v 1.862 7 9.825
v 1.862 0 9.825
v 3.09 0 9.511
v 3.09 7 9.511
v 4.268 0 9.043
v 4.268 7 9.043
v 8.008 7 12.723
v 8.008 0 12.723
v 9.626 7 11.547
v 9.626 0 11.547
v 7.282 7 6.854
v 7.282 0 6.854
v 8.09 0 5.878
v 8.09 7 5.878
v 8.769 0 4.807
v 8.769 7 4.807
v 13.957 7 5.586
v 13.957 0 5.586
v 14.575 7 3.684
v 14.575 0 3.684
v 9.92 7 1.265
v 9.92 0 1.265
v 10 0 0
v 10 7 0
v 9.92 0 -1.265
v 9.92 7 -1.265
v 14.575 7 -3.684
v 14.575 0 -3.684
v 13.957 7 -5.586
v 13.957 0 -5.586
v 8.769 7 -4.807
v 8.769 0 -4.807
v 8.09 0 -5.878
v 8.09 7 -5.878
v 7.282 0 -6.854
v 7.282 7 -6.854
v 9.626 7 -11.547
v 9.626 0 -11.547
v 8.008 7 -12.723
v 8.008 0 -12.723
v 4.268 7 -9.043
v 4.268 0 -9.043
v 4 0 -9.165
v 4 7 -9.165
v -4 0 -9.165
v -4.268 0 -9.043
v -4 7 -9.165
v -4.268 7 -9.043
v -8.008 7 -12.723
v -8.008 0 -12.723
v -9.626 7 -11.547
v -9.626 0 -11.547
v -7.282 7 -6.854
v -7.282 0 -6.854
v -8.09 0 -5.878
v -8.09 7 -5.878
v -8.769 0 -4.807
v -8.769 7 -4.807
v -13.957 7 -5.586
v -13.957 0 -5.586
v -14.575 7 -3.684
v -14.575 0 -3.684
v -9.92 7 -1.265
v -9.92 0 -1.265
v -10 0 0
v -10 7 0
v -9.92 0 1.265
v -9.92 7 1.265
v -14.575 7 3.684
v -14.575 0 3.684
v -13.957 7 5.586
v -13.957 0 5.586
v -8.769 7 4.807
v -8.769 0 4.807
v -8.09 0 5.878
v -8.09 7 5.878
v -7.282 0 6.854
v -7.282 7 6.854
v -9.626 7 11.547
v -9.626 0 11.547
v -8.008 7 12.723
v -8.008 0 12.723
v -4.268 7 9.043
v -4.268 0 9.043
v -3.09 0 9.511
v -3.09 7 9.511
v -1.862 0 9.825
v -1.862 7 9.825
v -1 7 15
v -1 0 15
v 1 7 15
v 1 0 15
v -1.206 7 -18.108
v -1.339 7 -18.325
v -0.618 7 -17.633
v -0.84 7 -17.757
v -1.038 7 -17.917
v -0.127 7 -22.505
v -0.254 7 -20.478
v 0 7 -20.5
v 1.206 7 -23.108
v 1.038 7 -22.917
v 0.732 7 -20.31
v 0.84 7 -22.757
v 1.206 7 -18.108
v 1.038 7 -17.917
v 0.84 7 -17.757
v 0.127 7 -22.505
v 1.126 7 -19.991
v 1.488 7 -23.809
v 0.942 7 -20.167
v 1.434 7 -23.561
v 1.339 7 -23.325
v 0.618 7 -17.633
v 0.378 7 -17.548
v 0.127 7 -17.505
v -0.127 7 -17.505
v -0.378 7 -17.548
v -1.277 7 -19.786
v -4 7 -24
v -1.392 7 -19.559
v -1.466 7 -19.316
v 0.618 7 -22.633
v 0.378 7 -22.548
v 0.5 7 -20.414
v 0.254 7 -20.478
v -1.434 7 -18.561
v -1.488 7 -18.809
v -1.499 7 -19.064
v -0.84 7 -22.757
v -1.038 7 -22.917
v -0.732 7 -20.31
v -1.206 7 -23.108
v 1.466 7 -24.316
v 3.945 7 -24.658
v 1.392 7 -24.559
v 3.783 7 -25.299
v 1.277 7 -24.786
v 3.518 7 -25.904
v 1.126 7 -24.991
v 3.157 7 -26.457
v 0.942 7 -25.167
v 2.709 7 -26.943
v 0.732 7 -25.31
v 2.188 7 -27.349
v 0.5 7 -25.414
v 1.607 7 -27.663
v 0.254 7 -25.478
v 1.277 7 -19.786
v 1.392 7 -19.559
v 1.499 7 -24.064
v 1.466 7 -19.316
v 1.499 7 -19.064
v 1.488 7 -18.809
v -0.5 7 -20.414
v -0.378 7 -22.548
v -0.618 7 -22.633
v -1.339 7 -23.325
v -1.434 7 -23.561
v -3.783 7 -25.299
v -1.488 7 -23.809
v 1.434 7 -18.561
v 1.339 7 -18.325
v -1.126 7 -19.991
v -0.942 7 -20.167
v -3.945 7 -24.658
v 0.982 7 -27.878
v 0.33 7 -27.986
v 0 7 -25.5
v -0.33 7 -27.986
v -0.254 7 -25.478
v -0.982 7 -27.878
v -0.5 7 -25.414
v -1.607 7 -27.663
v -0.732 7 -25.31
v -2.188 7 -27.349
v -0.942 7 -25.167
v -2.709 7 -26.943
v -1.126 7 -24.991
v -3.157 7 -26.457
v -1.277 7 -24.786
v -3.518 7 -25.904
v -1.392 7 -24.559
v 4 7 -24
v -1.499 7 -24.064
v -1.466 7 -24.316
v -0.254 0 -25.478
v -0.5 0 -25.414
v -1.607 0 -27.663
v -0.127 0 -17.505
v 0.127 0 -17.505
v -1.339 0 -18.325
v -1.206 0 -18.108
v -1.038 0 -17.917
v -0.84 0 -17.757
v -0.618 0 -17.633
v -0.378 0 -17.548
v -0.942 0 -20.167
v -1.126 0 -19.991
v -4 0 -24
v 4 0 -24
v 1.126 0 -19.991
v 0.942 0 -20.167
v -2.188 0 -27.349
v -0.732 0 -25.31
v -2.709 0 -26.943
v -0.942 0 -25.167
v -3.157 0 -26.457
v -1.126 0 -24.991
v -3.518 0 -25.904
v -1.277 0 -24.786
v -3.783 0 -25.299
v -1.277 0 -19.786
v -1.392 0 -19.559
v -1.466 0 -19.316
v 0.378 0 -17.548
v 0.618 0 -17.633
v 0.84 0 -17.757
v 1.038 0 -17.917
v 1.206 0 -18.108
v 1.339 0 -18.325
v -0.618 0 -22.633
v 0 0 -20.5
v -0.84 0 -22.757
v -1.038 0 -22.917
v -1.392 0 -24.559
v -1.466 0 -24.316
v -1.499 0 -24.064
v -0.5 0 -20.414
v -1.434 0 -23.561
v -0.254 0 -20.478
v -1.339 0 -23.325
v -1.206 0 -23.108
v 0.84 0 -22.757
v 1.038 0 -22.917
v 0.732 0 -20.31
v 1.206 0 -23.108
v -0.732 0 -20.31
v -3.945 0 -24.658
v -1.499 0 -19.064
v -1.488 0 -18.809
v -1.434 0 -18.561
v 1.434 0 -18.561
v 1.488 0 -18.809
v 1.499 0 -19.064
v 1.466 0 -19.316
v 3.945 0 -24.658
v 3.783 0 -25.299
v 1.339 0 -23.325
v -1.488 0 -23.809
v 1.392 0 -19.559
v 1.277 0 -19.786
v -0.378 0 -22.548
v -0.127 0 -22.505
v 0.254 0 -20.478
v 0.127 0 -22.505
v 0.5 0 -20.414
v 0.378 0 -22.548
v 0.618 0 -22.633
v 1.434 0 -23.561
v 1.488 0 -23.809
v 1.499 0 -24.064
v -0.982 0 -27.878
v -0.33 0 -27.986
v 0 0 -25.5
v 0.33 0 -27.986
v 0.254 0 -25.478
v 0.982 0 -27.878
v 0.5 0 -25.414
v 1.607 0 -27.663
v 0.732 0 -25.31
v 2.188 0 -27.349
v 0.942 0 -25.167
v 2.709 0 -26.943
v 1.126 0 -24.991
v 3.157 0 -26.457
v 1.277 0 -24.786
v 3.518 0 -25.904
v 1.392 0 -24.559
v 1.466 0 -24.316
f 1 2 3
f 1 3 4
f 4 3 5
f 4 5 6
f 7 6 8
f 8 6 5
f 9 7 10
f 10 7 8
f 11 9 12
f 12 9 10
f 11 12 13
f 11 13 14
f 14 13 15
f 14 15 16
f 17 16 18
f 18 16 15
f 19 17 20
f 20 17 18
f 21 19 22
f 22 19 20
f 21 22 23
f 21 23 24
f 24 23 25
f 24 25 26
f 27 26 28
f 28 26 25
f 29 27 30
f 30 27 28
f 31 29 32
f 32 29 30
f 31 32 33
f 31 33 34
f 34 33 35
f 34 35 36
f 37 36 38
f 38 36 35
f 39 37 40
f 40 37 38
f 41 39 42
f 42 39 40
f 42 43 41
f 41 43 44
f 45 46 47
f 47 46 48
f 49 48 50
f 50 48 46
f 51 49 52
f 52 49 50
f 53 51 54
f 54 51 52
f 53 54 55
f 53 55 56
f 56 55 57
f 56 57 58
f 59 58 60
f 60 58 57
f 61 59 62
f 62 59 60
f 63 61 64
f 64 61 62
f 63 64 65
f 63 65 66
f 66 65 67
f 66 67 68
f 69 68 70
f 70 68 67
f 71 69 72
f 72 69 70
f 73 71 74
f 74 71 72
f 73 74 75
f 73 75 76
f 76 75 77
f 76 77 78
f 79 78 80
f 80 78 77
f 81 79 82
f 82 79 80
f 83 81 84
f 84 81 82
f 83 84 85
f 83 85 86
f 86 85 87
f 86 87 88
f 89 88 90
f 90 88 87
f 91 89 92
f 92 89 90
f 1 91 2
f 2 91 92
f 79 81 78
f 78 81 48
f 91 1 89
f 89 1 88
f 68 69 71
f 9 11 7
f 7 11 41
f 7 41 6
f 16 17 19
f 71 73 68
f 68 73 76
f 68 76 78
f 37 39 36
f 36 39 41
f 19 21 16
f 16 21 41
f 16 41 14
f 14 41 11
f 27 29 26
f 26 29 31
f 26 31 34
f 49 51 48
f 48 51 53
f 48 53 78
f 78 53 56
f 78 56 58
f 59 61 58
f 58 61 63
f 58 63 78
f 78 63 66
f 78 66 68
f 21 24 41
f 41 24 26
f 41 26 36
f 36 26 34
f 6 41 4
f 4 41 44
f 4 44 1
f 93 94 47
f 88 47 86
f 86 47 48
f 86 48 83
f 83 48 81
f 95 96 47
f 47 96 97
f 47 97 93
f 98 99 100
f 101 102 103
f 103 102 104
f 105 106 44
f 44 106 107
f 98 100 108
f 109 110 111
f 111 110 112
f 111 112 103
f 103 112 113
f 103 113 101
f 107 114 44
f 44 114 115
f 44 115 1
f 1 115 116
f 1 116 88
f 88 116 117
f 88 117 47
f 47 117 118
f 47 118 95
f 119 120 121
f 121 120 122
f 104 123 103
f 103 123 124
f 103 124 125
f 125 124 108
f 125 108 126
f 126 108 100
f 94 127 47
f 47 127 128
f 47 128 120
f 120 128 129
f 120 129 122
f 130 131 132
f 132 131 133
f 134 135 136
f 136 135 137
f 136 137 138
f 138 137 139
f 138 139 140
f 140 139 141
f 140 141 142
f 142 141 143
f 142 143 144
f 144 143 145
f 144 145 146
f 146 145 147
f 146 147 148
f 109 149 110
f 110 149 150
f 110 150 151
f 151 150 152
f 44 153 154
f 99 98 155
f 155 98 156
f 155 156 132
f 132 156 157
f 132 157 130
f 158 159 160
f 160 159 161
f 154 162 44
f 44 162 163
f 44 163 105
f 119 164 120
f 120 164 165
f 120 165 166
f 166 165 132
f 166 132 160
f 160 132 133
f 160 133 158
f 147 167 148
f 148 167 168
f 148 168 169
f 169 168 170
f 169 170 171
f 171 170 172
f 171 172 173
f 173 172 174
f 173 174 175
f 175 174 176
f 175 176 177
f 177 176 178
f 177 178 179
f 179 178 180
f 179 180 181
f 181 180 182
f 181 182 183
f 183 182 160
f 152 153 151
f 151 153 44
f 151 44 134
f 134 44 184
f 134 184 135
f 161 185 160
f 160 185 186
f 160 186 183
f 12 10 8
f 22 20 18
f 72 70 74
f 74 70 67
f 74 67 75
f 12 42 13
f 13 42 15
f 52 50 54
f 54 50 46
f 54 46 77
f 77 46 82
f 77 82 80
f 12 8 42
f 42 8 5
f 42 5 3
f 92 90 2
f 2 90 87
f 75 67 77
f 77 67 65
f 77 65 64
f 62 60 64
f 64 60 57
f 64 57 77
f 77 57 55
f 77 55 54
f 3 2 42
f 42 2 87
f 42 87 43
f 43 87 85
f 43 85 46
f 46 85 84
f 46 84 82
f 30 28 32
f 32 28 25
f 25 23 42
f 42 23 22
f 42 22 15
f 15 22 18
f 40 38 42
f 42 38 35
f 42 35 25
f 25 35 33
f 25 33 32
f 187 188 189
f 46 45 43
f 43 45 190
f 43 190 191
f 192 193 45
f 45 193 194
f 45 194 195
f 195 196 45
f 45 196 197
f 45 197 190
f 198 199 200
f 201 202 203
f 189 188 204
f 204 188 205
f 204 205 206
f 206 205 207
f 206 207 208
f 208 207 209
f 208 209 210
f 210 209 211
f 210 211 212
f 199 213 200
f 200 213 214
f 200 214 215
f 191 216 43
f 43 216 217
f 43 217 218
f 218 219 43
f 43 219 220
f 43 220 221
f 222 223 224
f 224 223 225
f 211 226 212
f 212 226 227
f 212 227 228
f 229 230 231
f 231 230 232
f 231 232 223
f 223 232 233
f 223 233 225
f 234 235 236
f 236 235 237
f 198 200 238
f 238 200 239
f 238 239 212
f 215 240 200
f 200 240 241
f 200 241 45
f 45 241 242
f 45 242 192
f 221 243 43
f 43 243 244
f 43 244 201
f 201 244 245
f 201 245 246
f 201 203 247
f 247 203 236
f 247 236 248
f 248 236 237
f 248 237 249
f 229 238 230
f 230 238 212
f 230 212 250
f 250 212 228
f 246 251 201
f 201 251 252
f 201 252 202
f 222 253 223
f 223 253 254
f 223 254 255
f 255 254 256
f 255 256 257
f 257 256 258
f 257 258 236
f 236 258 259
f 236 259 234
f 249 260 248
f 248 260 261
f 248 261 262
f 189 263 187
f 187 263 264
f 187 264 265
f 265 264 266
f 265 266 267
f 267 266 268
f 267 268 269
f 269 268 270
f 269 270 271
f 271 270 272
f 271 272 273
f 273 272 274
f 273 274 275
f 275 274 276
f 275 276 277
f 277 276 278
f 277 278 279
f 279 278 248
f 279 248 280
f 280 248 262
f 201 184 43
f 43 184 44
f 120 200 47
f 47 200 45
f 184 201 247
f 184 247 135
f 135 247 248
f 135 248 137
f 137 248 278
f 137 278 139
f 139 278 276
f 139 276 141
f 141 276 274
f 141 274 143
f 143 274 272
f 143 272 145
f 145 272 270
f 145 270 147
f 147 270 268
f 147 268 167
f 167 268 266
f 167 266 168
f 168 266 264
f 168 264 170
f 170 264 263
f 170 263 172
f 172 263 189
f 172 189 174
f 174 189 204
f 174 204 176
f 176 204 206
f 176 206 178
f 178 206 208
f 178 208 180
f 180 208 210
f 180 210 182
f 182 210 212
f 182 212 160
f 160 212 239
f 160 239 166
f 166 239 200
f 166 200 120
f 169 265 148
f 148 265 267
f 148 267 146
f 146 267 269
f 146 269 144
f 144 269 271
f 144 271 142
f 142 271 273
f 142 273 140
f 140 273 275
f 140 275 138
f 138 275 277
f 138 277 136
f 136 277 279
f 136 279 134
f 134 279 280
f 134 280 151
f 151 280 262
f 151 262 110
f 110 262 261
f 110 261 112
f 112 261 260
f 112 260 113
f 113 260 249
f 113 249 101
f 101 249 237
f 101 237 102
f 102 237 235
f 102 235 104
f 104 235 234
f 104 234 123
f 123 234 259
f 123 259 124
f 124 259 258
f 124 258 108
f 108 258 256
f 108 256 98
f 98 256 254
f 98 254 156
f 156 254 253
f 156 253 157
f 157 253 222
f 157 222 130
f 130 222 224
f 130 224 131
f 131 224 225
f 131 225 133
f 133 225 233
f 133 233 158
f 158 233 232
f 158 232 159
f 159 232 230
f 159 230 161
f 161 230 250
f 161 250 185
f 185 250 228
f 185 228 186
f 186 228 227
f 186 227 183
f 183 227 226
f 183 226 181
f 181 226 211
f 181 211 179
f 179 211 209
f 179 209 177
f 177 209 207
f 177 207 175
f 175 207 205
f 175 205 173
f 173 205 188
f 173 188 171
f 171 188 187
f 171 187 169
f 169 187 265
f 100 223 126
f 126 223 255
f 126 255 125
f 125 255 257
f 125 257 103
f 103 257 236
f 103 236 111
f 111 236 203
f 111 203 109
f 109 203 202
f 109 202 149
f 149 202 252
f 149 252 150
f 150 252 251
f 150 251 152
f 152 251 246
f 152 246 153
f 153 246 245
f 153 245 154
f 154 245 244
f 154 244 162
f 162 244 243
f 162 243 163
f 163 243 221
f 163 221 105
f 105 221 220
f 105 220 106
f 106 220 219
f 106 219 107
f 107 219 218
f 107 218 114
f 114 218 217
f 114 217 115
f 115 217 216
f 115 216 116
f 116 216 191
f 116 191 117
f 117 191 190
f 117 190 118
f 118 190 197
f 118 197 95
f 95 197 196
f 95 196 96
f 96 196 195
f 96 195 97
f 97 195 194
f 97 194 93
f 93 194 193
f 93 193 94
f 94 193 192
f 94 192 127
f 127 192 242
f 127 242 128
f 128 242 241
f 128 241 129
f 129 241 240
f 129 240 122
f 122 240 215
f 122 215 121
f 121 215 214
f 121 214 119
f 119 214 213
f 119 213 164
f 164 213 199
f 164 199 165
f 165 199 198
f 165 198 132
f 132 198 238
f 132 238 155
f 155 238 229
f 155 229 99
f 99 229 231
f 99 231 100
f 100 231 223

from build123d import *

# Parameters (mm, degrees)
BOSS_EXTRUDE2_DEPTH = 7
SKETCH2_R           = 1.5
BOSS_EXTRUDE3_DEPTH = 7


with BuildPart() as part:
    # Sketch1 → Boss-Extrude2 (new body)
    with BuildSketch(Plane(origin=(0, 0, 0), x_dir=(1, 0, 0), z_dir=(0, 1, 0))):
        with BuildLine():
            Line((-2, 9), (-1.862495894, 9.825024633))
            ThreePointArc((-1.862495894, 9.825024633), (-3.090169944, 9.510565163), (-4.268213752, 9.043359518))
            Line((-4.268213752, 9.043359518), (-3.672033282, 8.456723454))
            Line((-3.672033282, 8.456723454), (-6.908101259, 6.105582445))
            Line((-6.908101259, 6.105582445), (-7.281795413, 6.853864279))
            ThreePointArc((-7.281795413, 6.853864279), (-8.090169944, 5.877852523), (-8.768610817, 4.807438439))
            Line((-8.768610817, 4.807438439), (-7.941474658, 4.683265982))
            Line((-7.941474658, 4.683265982), (-9.177542635, 0.879039917))
            Line((-9.177542635, 0.879039917), (-9.919696584, 1.264760725))
            ThreePointArc((-9.919696584, 1.264760725), (-10, 0), (-9.919696584, -1.264760725))
            Line((-9.919696584, -1.264760725), (-9.177542635, -0.879039917))
            Line((-9.177542635, -0.879039917), (-7.941474658, -4.683265982))
            Line((-7.941474658, -4.683265982), (-8.768610817, -4.807438439))
            ThreePointArc((-8.768610817, -4.807438439), (-8.090169944, -5.877852523), (-7.281795413, -6.853864279))
            Line((-7.281795413, -6.853864279), (-6.908101259, -6.105582445))
            Line((-6.908101259, -6.105582445), (-3.672033282, -8.456723454))
            Line((-3.672033282, -8.456723454), (-4.268213752, -9.043359518))
            ThreePointArc((-4.268213752, -9.043359518), (-3.090169944, -9.510565163), (-1.862495894, -9.825024633))
            Line((-1.862495894, -9.825024633), (-2, -9))
            Line((-2, -9), (2, -9))
            Line((2, -9), (1.862495894, -9.825024633))
            ThreePointArc((1.862495894, -9.825024633), (3.090169944, -9.510565163), (4.268213752, -9.043359518))
            Line((4.268213752, -9.043359518), (3.672033282, -8.456723454))
            Line((3.672033282, -8.456723454), (6.908101259, -6.105582445))
            Line((6.908101259, -6.105582445), (7.281795413, -6.853864279))
            ThreePointArc((7.281795413, -6.853864279), (8.090169944, -5.877852523), (8.768610817, -4.807438439))
            Line((8.768610817, -4.807438439), (7.941474658, -4.683265982))
            Line((7.941474658, -4.683265982), (9.177542635, -0.879039917))
            Line((9.177542635, -0.879039917), (9.919696584, -1.264760725))
            ThreePointArc((9.919696584, -1.264760725), (9.979903953, -0.633653756), (10, 0))
            ThreePointArc((10, 0), (9.979903953, 0.633653756), (9.919696584, 1.264760725))
            Line((9.919696584, 1.264760725), (9.177542635, 0.879039917))
            Line((9.177542635, 0.879039917), (7.941474658, 4.683265982))
            Line((7.941474658, 4.683265982), (8.768610817, 4.807438439))
            ThreePointArc((8.768610817, 4.807438439), (8.090169944, 5.877852523), (7.281795413, 6.853864279))
            Line((7.281795413, 6.853864279), (6.908101259, 6.105582445))
            Line((6.908101259, 6.105582445), (3.672033282, 8.456723454))
            Line((3.672033282, 8.456723454), (4.268213752, 9.043359518))
            ThreePointArc((4.268213752, 9.043359518), (3.090169944, 9.510565163), (1.862495894, 9.825024633))
            Line((1.862495894, 9.825024633), (2, 9))
            Line((2, 9), (-2, 9))
        make_face()
        with BuildLine():
            ThreePointArc((-8.768610817, -4.807438439), (-9.510565163, -3.090169944), (-9.919696584, -1.264760725))
            Line((-9.919696584, -1.264760725), (-14.574864739, -3.684198399))
            Line((-14.574864739, -3.684198399), (-13.95683075, -5.586311432))
            Line((-13.95683075, -5.586311432), (-8.768610817, -4.807438439))
        make_face()
        with BuildLine():
            ThreePointArc((-4.268213752, -9.043359518), (-5.877852523, -8.090169944), (-7.281795413, -6.853864279))
            Line((-7.281795413, -6.853864279), (-9.625795779, -11.547469663))
            Line((-9.625795779, -11.547469663), (-8.00776179, -12.723040168))
            Line((-8.00776179, -12.723040168), (-4.268213752, -9.043359518))
        make_face()
        with BuildLine():
            ThreePointArc((1.862495894, -9.825024633), (0, -10), (-1.862495894, -9.825024633))
            Line((-1.862495894, -9.825024633), (-1, -15))
            Line((-1, -15), (1, -15))
            Line((1, -15), (1.862495894, -9.825024633))
        make_face()
        with BuildLine():
            Line((9.625795779, -11.547469663), (7.281795413, -6.853864279))
            ThreePointArc((7.281795413, -6.853864279), (5.877852523, -8.090169944), (4.268213752, -9.043359518))
            Line((4.268213752, -9.043359518), (8.00776179, -12.723040168))
            Line((8.00776179, -12.723040168), (9.625795779, -11.547469663))
        make_face()
        with BuildLine():
            Line((14.574864739, -3.684198399), (9.919696584, -1.264760725))
            ThreePointArc((9.919696584, -1.264760725), (9.510565163, -3.090169944), (8.768610817, -4.807438439))
            Line((8.768610817, -4.807438439), (13.95683075, -5.586311432))
            Line((13.95683075, -5.586311432), (14.574864739, -3.684198399))
        make_face()
        with BuildLine():
            Line((13.95683075, 5.586311432), (8.768610817, 4.807438439))
            ThreePointArc((8.768610817, 4.807438439), (9.510565163, 3.090169944), (9.919696584, 1.264760725))
            Line((9.919696584, 1.264760725), (14.574864739, 3.684198399))
            Line((14.574864739, 3.684198399), (13.95683075, 5.586311432))
        make_face()
        with BuildLine():
            Line((8.00776179, 12.723040168), (4.268213752, 9.043359518))
            ThreePointArc((4.268213752, 9.043359518), (5.877852523, 8.090169944), (7.281795413, 6.853864279))
            Line((7.281795413, 6.853864279), (9.625795779, 11.547469663))
            Line((9.625795779, 11.547469663), (8.00776179, 12.723040168))
        make_face()
        with BuildLine():
            Line((1, 15), (-1, 15))
            Line((-1, 15), (-1.862495894, 9.825024633))
            ThreePointArc((-1.862495894, 9.825024633), (0, 10), (1.862495894, 9.825024633))
            Line((1.862495894, 9.825024633), (1, 15))
        make_face()
        with BuildLine():
            ThreePointArc((-7.281795413, 6.853864279), (-5.877852523, 8.090169944), (-4.268213752, 9.043359518))
            Line((-4.268213752, 9.043359518), (-8.00776179, 12.723040168))
            Line((-8.00776179, 12.723040168), (-9.625795779, 11.547469663))
            Line((-9.625795779, 11.547469663), (-7.281795413, 6.853864279))
        make_face()
        with BuildLine():
            ThreePointArc((-9.919696584, 1.264760725), (-9.510565163, 3.090169944), (-8.768610817, 4.807438439))
            Line((-8.768610817, 4.807438439), (-13.95683075, 5.586311432))
            Line((-13.95683075, 5.586311432), (-14.574864739, 3.684198399))
            Line((-14.574864739, 3.684198399), (-9.919696584, 1.264760725))
        make_face()
        with BuildLine():
            Line((-7.941474658, 4.683265982), (-8.768610817, 4.807438439))
            ThreePointArc((-8.768610817, 4.807438439), (-9.510565163, 3.090169944), (-9.919696584, 1.264760725))
            Line((-9.919696584, 1.264760725), (-9.177542635, 0.879039917))
            Line((-9.177542635, 0.879039917), (-7.941474658, 4.683265982))
        make_face()
        with BuildLine():
            Line((-2, -9), (-1.862495894, -9.825024633))
            ThreePointArc((-1.862495894, -9.825024633), (0, -10), (1.862495894, -9.825024633))
            Line((1.862495894, -9.825024633), (2, -9))
            Line((2, -9), (-2, -9))
        make_face()
        with BuildLine():
            ThreePointArc((4.268213752, -9.043359518), (5.877852523, -8.090169944), (7.281795413, -6.853864279))
            Line((7.281795413, -6.853864279), (6.908101259, -6.105582445))
            Line((6.908101259, -6.105582445), (3.672033282, -8.456723454))
            Line((3.672033282, -8.456723454), (4.268213752, -9.043359518))
        make_face()
        with BuildLine():
            Line((-6.908101259, -6.105582445), (-7.281795413, -6.853864279))
            ThreePointArc((-7.281795413, -6.853864279), (-5.877852523, -8.090169944), (-4.268213752, -9.043359518))
            Line((-4.268213752, -9.043359518), (-3.672033282, -8.456723454))
            Line((-3.672033282, -8.456723454), (-6.908101259, -6.105582445))
        make_face()
        with BuildLine():
            Line((-9.177542635, -0.879039917), (-9.919696584, -1.264760725))
            ThreePointArc((-9.919696584, -1.264760725), (-9.510565163, -3.090169944), (-8.768610817, -4.807438439))
            Line((-8.768610817, -4.807438439), (-7.941474658, -4.683265982))
            Line((-7.941474658, -4.683265982), (-9.177542635, -0.879039917))
        make_face()
        with BuildLine():
            Line((-3.672033282, 8.456723454), (-4.268213752, 9.043359518))
            ThreePointArc((-4.268213752, 9.043359518), (-5.877852523, 8.090169944), (-7.281795413, 6.853864279))
            Line((-7.281795413, 6.853864279), (-6.908101259, 6.105582445))
            Line((-6.908101259, 6.105582445), (-3.672033282, 8.456723454))
        make_face()
        with BuildLine():
            ThreePointArc((1.862495894, 9.825024633), (0, 10), (-1.862495894, 9.825024633))
            Line((-1.862495894, 9.825024633), (-2, 9))
            Line((-2, 9), (2, 9))
            Line((2, 9), (1.862495894, 9.825024633))
        make_face()
        with BuildLine():
            ThreePointArc((7.281795413, 6.853864279), (5.877852523, 8.090169944), (4.268213752, 9.043359518))
            Line((4.268213752, 9.043359518), (3.672033282, 8.456723454))
            Line((3.672033282, 8.456723454), (6.908101259, 6.105582445))
            Line((6.908101259, 6.105582445), (7.281795413, 6.853864279))
        make_face()
        with BuildLine():
            ThreePointArc((9.919696584, 1.264760725), (9.510565163, 3.090169944), (8.768610817, 4.807438439))
            Line((8.768610817, 4.807438439), (7.941474658, 4.683265982))
            Line((7.941474658, 4.683265982), (9.177542635, 0.879039917))
            Line((9.177542635, 0.879039917), (9.919696584, 1.264760725))
        make_face()
        with BuildLine():
            ThreePointArc((8.768610817, -4.807438439), (9.510565163, -3.090169944), (9.919696584, -1.264760725))
            Line((9.919696584, -1.264760725), (9.177542635, -0.879039917))
            Line((9.177542635, -0.879039917), (7.941474658, -4.683265982))
            Line((7.941474658, -4.683265982), (8.768610817, -4.807438439))
        make_face()
    extrude(amount=BOSS_EXTRUDE2_DEPTH)

    # Sketch2 → Boss-Extrude3 (add)
    with BuildSketch(Plane.XZ):
        with BuildLine():
            Line((-4, 0), (4, 0))
            Line((4, 0), (4, -24))
            ThreePointArc((4, -24), (0, -28), (-4, -24))
            Line((-4, -24), (-4, 0))
        make_face()
        with Locations(Location((0, -24, 0), (0, 0, 270))):
            Circle(SKETCH2_R, mode=Mode.SUBTRACT)
        with Locations(Location((0, -19, 0), (0, 0, 270))):
            Circle(SKETCH2_R, mode=Mode.SUBTRACT)
    extrude(amount=-BOSS_EXTRUDE3_DEPTH)


solid = part.part
